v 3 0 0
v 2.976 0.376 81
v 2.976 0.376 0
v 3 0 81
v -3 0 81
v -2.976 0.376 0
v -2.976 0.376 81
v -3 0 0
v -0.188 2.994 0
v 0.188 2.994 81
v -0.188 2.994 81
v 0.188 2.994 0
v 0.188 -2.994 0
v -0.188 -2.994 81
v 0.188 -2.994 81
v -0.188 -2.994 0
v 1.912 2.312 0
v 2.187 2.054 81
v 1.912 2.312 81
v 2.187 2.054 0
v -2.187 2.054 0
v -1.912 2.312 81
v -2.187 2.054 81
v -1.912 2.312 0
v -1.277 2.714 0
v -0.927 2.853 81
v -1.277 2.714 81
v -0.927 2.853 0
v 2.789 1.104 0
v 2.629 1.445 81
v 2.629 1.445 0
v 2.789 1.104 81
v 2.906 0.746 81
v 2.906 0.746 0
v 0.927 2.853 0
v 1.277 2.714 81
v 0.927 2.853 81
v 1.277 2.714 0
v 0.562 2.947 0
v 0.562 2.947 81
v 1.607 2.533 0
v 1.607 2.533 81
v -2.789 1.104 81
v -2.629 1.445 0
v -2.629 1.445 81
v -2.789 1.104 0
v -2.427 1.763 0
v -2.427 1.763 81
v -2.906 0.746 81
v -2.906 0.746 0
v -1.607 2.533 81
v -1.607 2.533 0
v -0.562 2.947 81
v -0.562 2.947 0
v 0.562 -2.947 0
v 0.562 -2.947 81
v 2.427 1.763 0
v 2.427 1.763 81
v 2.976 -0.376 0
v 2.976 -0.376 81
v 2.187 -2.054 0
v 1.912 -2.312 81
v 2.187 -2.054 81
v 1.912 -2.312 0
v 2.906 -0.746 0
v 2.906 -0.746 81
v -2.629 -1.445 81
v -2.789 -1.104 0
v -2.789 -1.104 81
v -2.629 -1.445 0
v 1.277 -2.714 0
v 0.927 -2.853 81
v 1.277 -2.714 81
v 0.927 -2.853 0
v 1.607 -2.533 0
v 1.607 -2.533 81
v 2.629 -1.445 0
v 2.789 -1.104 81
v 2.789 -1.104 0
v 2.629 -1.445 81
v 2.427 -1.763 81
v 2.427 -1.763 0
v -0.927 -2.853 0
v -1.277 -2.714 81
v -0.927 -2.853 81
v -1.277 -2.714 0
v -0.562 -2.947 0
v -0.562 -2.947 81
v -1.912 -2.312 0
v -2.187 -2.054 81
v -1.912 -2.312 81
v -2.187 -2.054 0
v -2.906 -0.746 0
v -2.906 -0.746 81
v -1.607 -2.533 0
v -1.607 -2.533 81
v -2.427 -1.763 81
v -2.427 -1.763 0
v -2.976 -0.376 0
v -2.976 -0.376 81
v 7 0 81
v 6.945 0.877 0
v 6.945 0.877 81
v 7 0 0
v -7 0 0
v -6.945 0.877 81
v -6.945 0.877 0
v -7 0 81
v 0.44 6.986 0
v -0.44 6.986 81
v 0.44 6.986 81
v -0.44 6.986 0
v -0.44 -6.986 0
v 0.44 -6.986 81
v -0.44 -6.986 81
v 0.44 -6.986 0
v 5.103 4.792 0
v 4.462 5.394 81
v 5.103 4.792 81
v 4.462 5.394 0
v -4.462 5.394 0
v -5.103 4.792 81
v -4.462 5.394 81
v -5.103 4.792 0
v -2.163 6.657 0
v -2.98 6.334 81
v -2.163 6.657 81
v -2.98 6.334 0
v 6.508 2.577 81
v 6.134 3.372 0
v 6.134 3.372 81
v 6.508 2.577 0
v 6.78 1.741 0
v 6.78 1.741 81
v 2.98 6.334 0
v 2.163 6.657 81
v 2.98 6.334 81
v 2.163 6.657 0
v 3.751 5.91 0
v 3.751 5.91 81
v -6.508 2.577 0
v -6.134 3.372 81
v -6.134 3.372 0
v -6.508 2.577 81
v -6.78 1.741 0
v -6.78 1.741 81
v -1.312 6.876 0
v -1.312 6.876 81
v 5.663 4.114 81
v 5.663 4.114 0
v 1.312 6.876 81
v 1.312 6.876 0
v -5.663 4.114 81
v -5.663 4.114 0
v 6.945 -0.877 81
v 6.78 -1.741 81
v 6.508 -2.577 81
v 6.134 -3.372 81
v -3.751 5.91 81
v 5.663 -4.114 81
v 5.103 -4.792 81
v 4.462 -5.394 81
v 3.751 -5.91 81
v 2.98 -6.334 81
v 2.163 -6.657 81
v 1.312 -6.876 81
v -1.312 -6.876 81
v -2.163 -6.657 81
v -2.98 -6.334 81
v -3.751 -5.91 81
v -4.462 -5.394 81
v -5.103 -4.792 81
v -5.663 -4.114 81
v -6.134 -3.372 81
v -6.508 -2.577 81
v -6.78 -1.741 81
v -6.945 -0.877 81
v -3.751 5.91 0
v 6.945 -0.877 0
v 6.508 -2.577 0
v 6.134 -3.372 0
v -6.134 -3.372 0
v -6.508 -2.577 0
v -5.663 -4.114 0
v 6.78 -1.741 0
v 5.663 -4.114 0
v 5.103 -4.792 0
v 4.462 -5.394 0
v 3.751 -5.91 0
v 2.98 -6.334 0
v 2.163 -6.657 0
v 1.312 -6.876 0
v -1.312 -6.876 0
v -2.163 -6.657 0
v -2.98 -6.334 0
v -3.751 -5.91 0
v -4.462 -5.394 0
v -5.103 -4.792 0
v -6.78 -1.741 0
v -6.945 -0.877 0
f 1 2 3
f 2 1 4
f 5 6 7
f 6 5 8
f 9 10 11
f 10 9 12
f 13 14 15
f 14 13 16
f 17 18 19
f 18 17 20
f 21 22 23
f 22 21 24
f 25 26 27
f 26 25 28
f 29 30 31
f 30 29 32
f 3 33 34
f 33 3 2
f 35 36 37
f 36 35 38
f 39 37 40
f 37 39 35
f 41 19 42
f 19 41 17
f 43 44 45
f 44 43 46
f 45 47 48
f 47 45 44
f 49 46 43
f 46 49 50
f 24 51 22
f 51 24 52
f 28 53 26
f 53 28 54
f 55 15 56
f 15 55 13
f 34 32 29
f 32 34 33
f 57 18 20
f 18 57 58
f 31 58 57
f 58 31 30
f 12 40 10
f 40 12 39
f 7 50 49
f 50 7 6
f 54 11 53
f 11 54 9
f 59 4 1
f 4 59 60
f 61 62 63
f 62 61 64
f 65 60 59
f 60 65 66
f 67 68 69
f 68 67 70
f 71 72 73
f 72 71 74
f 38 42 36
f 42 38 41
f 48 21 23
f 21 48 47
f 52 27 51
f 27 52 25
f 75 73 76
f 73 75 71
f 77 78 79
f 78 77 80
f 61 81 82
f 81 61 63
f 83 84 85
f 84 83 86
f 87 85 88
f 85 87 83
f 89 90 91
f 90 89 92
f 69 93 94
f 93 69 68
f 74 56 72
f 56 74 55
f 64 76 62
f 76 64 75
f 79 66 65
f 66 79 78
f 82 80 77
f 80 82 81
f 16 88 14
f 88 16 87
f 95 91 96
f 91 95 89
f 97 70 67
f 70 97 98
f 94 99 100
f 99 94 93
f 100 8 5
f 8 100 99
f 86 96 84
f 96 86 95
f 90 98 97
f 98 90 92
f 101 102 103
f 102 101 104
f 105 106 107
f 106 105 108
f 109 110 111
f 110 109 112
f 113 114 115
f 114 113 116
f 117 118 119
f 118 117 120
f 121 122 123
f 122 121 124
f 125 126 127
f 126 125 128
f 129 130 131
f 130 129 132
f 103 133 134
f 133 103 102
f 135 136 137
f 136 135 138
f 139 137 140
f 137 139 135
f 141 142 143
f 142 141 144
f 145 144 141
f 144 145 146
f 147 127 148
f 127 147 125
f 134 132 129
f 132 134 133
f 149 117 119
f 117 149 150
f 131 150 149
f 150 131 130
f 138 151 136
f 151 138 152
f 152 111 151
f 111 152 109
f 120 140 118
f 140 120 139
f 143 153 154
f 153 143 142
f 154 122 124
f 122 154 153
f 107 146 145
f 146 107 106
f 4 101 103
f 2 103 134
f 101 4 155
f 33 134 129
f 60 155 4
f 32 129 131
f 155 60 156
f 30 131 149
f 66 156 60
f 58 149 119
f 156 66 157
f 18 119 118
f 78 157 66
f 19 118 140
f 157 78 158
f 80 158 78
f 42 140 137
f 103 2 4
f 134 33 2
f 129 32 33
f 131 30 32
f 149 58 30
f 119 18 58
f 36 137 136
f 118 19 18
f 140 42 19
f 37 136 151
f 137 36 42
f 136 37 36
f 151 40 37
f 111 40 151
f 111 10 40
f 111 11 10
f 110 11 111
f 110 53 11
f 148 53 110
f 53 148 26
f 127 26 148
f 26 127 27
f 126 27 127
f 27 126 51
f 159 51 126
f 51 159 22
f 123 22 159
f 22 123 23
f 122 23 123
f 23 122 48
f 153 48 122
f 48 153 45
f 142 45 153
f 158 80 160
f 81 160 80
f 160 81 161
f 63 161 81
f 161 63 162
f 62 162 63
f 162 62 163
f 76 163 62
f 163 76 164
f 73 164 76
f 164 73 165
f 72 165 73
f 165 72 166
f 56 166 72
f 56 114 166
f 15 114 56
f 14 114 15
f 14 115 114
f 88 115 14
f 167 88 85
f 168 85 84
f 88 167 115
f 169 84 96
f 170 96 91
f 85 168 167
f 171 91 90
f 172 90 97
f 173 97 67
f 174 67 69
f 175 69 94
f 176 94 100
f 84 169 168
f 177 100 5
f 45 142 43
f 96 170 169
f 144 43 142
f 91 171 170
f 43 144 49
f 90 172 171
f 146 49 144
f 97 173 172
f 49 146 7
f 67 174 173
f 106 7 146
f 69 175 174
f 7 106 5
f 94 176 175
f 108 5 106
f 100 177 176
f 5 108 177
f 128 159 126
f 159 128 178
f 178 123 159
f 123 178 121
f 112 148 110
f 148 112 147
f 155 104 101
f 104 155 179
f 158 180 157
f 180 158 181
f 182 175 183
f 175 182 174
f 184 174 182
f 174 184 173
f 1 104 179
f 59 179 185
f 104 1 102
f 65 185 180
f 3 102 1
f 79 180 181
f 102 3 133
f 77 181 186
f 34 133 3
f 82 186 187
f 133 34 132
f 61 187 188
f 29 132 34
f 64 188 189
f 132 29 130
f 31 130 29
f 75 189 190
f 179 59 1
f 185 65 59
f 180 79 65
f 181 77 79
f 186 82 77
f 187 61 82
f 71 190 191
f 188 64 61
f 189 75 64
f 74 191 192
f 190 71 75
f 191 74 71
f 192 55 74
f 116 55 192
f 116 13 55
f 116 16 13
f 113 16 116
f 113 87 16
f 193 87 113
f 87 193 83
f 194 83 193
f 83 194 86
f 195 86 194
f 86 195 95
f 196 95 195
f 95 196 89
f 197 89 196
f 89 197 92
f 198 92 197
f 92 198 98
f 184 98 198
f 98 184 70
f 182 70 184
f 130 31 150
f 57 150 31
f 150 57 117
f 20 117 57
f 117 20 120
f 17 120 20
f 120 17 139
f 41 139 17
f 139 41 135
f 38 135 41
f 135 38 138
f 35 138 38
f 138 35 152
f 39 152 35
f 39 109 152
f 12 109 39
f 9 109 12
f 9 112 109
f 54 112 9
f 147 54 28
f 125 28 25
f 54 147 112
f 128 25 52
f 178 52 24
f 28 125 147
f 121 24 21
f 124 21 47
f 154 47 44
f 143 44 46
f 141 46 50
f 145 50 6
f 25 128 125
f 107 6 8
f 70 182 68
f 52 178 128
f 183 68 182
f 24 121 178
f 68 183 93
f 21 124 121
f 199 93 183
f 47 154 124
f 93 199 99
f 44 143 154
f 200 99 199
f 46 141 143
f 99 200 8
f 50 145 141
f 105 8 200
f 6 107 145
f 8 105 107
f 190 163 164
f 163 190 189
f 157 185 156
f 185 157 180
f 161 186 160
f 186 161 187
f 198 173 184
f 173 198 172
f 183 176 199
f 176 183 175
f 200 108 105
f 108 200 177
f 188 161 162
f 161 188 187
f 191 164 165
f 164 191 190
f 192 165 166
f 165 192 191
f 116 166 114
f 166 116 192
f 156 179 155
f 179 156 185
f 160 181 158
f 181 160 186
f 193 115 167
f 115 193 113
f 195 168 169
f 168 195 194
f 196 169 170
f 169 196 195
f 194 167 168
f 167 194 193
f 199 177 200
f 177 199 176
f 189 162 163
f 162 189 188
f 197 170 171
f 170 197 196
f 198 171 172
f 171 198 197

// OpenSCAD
$fn = 50;


difference() {
	union() {
		*color(alpha = 1.0000000000, c = "gray") {
			translate(v = [0, 7, 0]) {
				linear_extrude(height = 1) {
					text(font = "Arial:style=Bold", halign = "center", size = 4.5000000000, text = "COMMENT plate main", valign = "center");
				}
			}
		}
		cylinder(h = 81, r = 7.0000000000);
	}
	union() {
		*color(alpha = 1.0000000000, c = "gray") {
			translate(v = [0, 7, 0]) {
				linear_extrude(height = 1) {
					text(font = "Arial:style=Bold", halign = "center", size = 4.5000000000, text = "COMMENT holes main", valign = "center");
				}
			}
		}
		translate(v = [0, 0, -100]) {
			cylinder(h = 200, r = 3.0000000000);
		}
		translate(v = [0, 0, -100]) {
			cylinder(h = 200, r = 1.5000000000);
		}
	}
}
